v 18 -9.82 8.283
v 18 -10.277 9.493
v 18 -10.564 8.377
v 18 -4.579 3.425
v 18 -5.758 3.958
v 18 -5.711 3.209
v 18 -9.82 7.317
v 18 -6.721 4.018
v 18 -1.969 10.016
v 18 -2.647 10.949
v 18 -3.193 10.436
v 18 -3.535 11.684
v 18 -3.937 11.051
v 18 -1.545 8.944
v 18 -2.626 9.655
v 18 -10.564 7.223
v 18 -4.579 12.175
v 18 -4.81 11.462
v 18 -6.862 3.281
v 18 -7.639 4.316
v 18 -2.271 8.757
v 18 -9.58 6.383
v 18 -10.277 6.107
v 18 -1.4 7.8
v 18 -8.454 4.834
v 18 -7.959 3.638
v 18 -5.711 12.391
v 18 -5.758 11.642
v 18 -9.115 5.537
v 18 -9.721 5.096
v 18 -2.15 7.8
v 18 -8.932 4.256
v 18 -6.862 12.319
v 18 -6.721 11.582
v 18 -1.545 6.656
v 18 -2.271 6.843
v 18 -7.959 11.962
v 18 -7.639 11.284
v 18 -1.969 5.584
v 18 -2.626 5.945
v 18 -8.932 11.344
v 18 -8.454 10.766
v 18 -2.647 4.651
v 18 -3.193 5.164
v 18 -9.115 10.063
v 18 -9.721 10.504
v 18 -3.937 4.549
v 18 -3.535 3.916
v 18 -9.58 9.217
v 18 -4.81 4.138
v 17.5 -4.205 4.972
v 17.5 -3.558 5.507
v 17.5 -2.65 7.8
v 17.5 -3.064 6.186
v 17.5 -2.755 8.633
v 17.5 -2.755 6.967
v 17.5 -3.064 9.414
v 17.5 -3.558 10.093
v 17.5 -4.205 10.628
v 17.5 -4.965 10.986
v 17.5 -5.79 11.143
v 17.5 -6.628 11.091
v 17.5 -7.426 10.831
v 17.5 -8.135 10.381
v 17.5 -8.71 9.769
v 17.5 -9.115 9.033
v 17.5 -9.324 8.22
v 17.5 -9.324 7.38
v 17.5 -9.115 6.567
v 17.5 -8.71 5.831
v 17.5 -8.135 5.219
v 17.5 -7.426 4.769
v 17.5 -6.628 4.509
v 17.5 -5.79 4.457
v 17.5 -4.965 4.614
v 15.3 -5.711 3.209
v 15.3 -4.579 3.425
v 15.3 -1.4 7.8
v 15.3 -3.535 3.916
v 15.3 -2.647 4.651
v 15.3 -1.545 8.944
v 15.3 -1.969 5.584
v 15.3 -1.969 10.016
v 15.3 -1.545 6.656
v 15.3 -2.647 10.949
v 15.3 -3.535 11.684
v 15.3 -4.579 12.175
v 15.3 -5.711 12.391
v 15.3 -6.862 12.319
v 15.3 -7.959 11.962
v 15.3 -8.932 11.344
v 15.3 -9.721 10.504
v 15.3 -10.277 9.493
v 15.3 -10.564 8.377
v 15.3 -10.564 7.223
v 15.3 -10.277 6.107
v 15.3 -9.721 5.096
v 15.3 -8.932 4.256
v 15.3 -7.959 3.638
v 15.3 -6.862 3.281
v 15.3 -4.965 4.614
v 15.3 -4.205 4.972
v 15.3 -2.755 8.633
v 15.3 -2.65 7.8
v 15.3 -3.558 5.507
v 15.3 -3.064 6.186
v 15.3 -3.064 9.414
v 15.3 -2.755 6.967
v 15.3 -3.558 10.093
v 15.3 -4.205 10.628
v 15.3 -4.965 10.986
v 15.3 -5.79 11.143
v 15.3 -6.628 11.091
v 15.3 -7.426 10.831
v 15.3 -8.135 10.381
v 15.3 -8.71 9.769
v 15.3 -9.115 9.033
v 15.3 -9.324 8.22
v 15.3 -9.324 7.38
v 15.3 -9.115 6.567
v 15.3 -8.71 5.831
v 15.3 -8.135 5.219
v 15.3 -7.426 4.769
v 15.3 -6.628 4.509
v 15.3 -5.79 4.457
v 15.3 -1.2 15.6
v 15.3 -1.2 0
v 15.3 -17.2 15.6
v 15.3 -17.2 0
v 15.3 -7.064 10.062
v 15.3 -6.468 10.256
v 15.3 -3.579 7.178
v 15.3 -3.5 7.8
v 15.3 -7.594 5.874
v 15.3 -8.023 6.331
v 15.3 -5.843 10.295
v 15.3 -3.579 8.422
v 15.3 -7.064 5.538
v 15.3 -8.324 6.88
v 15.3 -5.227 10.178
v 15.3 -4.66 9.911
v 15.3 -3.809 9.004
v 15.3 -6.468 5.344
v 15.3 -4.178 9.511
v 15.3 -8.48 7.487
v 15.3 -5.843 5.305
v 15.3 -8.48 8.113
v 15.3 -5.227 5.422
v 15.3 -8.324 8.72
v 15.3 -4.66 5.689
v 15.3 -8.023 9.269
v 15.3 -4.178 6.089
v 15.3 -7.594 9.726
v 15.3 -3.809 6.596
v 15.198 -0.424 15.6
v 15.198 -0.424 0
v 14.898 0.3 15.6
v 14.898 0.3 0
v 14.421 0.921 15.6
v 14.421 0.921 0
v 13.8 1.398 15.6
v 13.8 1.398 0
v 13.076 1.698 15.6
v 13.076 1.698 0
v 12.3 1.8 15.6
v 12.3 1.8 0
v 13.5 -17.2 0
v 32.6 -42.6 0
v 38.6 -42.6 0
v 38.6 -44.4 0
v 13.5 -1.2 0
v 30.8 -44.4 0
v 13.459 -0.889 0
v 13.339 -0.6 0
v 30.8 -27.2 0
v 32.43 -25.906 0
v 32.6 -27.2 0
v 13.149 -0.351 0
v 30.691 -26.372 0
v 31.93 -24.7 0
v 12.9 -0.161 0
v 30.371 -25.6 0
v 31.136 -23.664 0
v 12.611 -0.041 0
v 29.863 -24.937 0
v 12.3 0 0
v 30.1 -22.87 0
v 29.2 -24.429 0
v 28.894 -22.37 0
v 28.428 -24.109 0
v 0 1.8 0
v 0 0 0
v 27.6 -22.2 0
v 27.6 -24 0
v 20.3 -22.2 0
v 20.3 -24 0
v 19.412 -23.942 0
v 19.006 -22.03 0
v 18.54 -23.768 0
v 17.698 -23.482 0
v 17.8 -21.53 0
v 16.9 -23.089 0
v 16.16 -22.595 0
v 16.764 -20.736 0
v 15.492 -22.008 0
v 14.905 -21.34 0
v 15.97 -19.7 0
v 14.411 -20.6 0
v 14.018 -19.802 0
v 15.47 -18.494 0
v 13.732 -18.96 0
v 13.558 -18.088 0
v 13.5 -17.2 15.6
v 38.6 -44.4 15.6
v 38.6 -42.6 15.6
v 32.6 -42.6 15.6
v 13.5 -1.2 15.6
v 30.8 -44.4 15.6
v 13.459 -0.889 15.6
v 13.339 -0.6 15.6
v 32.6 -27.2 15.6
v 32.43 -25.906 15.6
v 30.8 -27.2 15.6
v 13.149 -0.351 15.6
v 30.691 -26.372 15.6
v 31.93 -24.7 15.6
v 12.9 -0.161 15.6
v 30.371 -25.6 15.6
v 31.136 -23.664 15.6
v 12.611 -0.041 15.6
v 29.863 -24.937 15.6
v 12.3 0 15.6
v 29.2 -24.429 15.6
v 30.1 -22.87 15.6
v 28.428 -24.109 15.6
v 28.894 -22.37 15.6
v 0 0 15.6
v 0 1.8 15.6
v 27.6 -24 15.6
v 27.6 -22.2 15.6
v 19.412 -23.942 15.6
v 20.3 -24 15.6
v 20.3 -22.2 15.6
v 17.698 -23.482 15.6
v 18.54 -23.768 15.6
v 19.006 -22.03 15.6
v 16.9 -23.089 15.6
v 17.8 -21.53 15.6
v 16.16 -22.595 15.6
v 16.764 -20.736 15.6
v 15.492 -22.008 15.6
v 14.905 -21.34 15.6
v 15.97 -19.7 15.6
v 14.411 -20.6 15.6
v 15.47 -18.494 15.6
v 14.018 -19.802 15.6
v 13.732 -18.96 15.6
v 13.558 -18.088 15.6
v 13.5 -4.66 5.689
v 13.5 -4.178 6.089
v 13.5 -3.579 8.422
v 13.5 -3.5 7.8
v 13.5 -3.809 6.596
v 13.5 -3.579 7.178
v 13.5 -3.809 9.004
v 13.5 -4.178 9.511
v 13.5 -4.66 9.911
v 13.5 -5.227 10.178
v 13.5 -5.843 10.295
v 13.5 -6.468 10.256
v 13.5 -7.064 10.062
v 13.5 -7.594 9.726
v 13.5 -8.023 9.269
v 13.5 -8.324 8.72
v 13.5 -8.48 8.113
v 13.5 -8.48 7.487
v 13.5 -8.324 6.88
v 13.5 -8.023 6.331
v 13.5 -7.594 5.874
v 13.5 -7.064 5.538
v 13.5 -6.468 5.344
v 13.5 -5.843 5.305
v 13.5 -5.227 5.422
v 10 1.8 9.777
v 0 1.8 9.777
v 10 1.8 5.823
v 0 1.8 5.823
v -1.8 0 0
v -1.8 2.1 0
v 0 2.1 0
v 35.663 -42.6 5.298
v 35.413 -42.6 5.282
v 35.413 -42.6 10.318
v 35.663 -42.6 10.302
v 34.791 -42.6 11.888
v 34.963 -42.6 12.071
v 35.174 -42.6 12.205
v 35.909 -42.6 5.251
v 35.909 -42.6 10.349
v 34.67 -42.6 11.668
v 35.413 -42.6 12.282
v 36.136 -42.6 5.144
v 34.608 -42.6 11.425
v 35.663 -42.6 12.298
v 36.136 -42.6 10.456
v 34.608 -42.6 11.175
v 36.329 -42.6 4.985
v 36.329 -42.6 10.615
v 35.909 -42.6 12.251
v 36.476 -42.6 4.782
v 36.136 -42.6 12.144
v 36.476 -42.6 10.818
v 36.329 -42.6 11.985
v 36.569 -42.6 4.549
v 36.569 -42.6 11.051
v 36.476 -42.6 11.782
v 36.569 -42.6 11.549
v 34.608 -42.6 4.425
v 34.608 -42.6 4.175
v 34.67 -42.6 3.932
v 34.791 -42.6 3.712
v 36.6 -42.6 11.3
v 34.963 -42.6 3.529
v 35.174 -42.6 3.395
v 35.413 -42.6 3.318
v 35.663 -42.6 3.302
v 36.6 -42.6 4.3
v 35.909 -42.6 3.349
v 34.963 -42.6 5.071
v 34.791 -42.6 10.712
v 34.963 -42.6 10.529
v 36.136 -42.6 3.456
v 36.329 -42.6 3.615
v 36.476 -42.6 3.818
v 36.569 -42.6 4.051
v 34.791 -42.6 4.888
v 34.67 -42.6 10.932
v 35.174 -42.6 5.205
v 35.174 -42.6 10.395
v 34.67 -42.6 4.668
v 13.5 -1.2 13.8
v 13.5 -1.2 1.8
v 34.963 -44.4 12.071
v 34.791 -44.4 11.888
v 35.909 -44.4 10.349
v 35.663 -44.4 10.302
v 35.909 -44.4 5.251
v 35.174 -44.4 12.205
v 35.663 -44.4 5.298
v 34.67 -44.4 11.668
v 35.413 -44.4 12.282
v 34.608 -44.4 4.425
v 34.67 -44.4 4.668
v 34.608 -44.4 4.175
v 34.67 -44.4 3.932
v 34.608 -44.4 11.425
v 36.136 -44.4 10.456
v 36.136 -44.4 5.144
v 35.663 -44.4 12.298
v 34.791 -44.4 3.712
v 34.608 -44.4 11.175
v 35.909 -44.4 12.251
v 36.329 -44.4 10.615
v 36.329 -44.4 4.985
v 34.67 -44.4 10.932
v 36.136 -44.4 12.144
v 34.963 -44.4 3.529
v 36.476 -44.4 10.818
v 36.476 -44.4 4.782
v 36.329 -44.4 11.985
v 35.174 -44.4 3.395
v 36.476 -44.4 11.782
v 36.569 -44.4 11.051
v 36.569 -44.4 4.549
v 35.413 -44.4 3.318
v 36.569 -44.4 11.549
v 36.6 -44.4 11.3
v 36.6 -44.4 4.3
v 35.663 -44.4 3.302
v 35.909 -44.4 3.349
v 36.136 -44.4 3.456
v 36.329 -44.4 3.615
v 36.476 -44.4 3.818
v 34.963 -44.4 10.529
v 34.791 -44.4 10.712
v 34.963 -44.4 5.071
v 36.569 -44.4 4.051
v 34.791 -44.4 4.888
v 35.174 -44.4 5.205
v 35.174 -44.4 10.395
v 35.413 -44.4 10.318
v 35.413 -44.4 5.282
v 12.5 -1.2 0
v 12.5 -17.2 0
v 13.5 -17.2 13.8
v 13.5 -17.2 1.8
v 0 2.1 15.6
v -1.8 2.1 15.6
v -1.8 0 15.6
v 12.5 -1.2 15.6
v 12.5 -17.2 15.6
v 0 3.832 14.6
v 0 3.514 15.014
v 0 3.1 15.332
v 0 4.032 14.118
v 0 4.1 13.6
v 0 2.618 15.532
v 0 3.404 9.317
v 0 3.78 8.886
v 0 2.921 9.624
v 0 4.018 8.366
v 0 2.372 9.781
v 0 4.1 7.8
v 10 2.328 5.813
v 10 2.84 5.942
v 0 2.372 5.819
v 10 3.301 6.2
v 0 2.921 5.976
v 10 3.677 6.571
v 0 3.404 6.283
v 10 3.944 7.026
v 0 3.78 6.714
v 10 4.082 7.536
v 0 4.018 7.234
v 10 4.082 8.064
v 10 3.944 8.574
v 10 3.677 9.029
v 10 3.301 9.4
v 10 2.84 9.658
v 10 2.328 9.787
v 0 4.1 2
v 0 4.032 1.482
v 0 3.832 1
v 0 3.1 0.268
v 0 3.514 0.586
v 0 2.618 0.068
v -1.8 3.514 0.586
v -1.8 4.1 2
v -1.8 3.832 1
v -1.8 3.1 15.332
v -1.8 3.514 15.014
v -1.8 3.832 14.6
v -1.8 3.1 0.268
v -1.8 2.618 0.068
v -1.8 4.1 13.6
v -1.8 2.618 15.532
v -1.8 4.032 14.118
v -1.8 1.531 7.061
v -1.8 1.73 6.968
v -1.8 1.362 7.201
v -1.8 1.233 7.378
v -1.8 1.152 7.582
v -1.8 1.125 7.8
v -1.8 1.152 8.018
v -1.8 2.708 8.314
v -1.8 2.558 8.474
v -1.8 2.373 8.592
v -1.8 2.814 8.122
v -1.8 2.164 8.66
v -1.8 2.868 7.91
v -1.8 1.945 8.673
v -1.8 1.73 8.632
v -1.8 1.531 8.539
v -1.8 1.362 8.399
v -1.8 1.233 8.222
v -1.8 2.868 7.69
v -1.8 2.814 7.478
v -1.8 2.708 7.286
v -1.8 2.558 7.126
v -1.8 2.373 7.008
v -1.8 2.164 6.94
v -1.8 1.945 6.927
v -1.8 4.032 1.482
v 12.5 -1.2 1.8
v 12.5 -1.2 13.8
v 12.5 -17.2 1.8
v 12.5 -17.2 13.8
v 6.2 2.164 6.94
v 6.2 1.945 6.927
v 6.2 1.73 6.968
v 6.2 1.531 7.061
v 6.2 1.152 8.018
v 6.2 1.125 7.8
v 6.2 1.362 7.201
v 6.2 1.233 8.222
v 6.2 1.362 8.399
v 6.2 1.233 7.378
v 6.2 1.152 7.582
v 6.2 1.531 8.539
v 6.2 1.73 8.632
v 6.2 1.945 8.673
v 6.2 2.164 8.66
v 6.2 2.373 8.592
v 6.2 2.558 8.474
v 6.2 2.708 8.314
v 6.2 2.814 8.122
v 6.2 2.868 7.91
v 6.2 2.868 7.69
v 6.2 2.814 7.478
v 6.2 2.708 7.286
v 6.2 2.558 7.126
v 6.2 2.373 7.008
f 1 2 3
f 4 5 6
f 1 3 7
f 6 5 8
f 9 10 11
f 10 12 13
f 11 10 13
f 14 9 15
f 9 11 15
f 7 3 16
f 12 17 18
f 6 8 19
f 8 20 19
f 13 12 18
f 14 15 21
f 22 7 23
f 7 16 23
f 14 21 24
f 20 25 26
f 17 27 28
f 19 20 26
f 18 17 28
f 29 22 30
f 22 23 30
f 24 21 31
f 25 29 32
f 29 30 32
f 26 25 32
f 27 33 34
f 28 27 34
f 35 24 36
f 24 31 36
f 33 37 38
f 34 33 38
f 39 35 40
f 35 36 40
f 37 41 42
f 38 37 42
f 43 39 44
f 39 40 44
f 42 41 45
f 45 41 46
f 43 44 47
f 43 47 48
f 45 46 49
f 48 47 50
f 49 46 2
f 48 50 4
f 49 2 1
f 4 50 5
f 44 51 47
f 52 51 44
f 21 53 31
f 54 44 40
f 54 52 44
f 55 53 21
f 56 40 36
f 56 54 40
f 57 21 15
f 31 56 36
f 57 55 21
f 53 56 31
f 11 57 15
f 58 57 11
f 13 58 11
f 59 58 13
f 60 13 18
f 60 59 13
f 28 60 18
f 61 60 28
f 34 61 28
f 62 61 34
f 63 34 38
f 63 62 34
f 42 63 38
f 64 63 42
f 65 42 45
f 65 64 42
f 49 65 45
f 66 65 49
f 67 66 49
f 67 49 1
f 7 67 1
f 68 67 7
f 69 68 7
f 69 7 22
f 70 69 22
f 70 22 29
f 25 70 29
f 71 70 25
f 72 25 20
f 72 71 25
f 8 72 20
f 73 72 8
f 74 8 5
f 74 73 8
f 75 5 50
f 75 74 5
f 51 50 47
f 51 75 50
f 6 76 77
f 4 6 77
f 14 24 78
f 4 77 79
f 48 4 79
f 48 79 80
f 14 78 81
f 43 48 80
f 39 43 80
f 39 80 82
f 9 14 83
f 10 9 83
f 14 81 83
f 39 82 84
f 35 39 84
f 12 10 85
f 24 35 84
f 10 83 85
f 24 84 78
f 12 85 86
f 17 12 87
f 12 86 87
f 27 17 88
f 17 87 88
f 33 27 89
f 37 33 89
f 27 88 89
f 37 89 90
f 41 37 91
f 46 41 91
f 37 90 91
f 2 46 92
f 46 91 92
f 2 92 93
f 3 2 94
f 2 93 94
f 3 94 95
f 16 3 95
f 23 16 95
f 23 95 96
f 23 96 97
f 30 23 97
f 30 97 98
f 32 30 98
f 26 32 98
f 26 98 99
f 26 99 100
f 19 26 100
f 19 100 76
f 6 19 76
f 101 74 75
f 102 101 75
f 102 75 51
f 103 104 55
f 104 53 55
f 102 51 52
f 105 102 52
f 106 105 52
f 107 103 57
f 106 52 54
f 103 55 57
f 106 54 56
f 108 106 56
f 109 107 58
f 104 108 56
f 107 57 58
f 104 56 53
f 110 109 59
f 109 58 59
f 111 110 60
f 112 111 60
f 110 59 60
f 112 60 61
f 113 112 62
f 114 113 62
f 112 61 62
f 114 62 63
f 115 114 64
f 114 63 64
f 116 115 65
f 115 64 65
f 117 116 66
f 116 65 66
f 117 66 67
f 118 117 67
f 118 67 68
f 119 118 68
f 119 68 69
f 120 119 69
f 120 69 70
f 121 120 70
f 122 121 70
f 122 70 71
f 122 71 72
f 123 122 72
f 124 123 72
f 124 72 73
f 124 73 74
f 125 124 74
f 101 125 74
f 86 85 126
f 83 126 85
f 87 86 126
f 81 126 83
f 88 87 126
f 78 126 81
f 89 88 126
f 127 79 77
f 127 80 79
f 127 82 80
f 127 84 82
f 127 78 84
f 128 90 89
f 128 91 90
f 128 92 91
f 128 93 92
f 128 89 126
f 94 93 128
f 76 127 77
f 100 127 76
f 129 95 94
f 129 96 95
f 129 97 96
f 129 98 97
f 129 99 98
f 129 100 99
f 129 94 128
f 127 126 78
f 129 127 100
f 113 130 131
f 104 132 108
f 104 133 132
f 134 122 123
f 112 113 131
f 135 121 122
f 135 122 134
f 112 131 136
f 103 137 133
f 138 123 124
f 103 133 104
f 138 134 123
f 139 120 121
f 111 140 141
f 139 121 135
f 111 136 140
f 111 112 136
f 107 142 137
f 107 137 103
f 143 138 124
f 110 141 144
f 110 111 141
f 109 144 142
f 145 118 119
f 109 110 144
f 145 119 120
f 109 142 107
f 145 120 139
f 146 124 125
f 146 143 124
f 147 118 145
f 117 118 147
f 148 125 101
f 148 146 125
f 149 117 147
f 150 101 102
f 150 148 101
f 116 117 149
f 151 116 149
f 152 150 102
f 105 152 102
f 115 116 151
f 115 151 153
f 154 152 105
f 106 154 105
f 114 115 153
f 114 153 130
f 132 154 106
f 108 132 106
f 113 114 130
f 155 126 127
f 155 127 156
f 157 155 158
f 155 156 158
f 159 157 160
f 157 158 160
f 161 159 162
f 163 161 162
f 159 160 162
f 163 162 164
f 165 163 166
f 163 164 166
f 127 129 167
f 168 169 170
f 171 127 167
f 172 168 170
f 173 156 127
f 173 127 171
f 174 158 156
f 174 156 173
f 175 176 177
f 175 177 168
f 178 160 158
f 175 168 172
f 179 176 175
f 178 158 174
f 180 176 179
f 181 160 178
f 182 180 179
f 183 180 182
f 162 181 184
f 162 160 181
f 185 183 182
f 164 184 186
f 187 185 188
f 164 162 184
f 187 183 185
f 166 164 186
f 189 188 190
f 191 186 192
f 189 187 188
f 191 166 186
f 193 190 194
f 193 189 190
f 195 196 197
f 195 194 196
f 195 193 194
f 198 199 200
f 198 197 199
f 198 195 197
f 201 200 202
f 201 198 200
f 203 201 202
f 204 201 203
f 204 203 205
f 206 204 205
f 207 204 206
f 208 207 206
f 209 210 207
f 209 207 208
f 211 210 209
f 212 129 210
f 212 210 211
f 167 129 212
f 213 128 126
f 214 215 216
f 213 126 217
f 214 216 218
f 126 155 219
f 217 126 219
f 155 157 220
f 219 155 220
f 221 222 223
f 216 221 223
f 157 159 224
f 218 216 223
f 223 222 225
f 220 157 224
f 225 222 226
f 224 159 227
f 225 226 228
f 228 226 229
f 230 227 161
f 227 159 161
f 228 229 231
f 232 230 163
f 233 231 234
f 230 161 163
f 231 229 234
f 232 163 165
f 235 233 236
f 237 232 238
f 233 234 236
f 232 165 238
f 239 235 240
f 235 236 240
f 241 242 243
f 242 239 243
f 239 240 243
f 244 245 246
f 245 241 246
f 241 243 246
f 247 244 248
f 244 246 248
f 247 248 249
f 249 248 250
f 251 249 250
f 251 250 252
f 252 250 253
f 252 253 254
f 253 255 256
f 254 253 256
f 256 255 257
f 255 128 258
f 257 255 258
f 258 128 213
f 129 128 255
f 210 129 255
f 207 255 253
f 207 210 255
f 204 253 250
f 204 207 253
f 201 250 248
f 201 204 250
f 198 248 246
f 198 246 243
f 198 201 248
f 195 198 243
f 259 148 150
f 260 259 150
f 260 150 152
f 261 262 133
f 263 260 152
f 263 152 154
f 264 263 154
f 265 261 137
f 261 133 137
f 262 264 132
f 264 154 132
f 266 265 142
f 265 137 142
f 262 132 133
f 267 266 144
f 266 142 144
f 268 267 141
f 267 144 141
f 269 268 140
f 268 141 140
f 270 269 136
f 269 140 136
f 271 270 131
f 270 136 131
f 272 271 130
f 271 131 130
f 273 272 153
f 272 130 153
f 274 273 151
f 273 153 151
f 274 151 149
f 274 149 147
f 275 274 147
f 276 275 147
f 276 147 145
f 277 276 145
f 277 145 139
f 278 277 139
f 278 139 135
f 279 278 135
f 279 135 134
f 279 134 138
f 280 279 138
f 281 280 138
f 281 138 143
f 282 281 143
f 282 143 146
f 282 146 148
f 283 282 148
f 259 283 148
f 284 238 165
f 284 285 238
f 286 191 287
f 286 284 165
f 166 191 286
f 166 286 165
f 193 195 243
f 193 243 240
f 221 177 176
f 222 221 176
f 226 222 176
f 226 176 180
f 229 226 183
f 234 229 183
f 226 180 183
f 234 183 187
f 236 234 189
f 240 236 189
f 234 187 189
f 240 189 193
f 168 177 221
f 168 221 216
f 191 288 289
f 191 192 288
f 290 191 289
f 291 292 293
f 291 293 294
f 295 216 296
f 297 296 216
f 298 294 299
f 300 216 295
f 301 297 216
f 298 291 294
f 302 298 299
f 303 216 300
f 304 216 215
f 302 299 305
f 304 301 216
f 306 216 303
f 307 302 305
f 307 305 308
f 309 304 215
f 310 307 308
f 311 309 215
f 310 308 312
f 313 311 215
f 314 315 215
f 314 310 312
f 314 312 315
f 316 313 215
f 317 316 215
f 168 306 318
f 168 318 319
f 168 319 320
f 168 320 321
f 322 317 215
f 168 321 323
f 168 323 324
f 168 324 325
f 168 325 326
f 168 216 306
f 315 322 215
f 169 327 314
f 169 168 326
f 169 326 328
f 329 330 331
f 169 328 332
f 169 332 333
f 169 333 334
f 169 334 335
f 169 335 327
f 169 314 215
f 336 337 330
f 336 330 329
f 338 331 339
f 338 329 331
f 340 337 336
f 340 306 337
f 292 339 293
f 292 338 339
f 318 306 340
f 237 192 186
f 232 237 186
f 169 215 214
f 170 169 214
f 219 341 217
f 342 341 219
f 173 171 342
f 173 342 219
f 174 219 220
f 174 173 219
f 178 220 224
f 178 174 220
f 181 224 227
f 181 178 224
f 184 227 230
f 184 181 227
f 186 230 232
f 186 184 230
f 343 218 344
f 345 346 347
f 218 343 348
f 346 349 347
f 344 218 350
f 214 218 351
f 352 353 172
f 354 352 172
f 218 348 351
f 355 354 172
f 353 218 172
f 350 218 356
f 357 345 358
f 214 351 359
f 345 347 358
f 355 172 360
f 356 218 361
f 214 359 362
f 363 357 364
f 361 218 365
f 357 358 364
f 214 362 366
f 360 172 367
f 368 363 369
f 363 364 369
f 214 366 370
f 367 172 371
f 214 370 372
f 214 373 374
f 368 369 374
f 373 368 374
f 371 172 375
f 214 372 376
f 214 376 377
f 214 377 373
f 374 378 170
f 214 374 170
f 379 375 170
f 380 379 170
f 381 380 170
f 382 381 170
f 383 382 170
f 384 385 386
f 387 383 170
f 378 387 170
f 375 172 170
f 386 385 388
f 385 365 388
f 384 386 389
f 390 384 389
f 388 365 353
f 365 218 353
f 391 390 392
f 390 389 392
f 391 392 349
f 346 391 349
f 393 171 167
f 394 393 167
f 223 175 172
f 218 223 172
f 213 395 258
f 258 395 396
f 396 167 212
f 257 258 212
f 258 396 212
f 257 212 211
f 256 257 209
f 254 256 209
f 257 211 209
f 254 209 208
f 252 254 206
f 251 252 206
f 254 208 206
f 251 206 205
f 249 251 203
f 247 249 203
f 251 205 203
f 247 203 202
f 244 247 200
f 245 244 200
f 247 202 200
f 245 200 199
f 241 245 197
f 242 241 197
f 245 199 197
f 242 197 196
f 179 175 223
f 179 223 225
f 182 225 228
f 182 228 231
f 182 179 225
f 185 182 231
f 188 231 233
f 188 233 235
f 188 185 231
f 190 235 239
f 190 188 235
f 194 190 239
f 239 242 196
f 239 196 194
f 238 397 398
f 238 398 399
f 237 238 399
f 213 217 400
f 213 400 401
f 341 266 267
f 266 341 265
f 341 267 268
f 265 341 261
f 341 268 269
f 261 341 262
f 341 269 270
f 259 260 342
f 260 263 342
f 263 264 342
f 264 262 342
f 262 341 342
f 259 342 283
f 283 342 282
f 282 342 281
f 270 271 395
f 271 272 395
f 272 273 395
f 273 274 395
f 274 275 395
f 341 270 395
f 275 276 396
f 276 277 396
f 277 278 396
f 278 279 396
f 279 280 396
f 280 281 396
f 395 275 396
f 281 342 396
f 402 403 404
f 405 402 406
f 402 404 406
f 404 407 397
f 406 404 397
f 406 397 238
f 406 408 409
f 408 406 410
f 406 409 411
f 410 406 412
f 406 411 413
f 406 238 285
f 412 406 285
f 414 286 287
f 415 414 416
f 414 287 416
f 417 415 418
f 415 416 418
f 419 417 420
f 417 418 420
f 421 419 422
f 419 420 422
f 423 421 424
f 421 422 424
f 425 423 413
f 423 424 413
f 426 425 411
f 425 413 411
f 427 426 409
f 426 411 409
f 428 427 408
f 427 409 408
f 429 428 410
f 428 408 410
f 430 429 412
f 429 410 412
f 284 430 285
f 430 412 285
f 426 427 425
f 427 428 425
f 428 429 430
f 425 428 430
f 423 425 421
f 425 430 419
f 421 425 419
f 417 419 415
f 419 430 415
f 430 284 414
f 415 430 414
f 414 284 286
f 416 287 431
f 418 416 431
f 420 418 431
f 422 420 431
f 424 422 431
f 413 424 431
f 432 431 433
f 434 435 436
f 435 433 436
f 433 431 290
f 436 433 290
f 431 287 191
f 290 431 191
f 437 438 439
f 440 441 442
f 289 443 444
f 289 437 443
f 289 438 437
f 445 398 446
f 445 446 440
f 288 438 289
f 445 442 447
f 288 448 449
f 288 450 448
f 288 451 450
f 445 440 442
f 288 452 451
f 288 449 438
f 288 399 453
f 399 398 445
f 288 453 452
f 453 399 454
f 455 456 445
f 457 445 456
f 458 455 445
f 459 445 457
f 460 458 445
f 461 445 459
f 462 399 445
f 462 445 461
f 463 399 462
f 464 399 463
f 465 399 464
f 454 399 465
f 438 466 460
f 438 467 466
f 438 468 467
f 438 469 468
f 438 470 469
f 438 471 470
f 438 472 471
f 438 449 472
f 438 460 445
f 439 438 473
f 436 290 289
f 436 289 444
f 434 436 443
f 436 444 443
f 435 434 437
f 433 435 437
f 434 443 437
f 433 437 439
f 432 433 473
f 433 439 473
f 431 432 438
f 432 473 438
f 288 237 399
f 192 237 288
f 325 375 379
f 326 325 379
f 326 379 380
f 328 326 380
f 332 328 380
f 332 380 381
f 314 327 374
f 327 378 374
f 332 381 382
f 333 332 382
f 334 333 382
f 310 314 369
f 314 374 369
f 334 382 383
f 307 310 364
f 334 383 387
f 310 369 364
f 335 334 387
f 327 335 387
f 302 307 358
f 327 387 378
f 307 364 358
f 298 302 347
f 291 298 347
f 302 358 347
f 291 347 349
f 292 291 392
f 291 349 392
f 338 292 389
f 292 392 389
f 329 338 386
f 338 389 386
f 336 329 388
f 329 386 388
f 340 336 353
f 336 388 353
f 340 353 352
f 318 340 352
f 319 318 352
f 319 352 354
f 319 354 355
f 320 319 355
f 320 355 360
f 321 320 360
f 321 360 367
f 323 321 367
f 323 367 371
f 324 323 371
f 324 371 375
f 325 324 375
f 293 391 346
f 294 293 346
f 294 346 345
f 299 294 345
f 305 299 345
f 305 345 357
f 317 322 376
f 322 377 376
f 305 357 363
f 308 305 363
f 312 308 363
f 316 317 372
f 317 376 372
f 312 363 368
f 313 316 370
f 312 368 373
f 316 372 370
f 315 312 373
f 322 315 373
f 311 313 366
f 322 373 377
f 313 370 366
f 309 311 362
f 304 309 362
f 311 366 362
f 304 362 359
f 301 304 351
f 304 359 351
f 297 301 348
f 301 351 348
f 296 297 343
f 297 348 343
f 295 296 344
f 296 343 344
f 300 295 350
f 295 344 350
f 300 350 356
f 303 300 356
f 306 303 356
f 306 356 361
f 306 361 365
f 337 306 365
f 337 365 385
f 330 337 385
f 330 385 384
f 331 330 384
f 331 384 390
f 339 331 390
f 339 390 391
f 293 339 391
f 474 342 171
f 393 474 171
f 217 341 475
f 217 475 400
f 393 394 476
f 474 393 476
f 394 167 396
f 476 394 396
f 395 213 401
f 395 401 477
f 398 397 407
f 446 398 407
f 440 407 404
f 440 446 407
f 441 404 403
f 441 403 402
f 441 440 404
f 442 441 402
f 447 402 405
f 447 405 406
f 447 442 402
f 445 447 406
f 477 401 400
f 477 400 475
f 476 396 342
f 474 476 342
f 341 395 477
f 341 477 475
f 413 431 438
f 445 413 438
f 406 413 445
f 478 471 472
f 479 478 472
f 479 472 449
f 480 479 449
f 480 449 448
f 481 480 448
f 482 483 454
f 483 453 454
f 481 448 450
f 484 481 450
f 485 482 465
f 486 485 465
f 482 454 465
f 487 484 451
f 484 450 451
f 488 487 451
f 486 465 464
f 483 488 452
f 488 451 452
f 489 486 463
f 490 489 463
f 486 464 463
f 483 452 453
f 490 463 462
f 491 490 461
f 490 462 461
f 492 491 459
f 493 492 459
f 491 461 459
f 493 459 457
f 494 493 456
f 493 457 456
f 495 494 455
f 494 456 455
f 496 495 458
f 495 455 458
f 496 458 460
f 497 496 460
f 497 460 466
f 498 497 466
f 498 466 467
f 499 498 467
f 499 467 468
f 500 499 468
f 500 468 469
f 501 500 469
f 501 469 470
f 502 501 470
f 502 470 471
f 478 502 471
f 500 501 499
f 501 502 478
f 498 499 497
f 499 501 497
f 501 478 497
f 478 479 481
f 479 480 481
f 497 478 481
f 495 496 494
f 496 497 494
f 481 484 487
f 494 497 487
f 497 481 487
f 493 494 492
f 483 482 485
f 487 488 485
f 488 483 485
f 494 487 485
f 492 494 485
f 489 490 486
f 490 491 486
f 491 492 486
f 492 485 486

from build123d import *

# Parameters (mm, degrees)
PAD_DEPTH       = 15.6
SKETCH001_R     = 4.6
PAD001_DEPTH    = 2.7
SKETCH002_R     = 3.35
POCKET_DEPTH    = 2.7
SKETCH003_R     = 2.5
POCKET001_DEPTH = 15.301
SKETCH004_W     = 4.1
SKETCH004_H     = 15.6
PAD002_DEPTH    = 1.8
PAD003_DEPTH    = 10
SKETCH006_R     = 0.875
POCKET002_DEPTH = 8
SKETCH007_R     = 1
POCKET003_DEPTH = 48.501
FILLET_R        = 2
CHAMFER_SIZE    = 0.5
SKETCH008_W     = 16
SKETCH008_H     = 1.8
PAD004_DEPTH    = 1


with BuildPart() as part:
    # Sketch → Pad (new body)
    with BuildSketch(Plane.XY):
        with BuildLine():
            Line((0, 1.8), (0, 0))
            Line((0, 0), (12.300012, 0))
            ThreePointArc((13.5, -1.200002), (13.148533, -0.351477), (12.300012, 0))
            Line((13.5, -1.200002), (13.5, -17.200002))
            ThreePointArc((13.5, -17.200002), (15.491679, -22.008332), (20.300013, -24))
            Line((20.300013, -24), (27.6, -24))
            ThreePointArc((30.8, -27.2), (29.862742, -24.937258), (27.6, -24))
            Line((30.8, -27.2), (30.8, -44.4))
            Line((30.8, -44.4), (38.6, -44.4))
            Line((38.6, -42.6), (38.6, -44.4))
            Line((32.6, -42.6), (38.6, -42.6))
            Line((32.6, -27.2), (32.6, -42.6))
            ThreePointArc((32.6, -27.2), (31.135534, -23.664466), (27.6, -22.2))
            Line((20.300013, -22.2), (27.6, -22.2))
            ThreePointArc((15.3, -17.200002), (16.764472, -20.735539), (20.300013, -22.2))
            Line((15.3, -1.200002), (15.3, -17.200002))
            ThreePointArc((15.3, -1.200002), (14.421326, 0.921315), (12.300012, 1.8))
            Line((0, 1.8), (12.300012, 1.8))
        make_face()
    extrude(amount=PAD_DEPTH)

    # Sketch001 → Pad001 (new body)
    with BuildSketch(Plane.YZ.offset(15.3)):
        with Locations((-6, 7.8)):
            Circle(SKETCH001_R)
    extrude(amount=PAD001_DEPTH)

    # Sketch002 → Pocket (cut)
    with BuildSketch(Plane.YZ.offset(18)):
        with Locations((-6, 7.8)):
            Circle(SKETCH002_R)
    extrude(amount=-POCKET_DEPTH, mode=Mode.SUBTRACT)

    # Sketch003 → Pocket001 (cut, through all)
    with BuildSketch(Plane.YZ.offset(15.3)):
        with Locations((-6, 7.8)):
            Circle(SKETCH003_R)
    extrude(amount=-POCKET001_DEPTH, mode=Mode.SUBTRACT)

    # Sketch004 → Pad002 (new body)
    with BuildSketch(Plane(origin=(0, 0, 0), x_dir=(0, -1, 0), z_dir=(-1, 0, 0))):
        with Locations((-2.05, 7.8)):
            Rectangle(SKETCH004_W, SKETCH004_H)
    extrude(amount=PAD002_DEPTH)

    # Sketch005 → Pad003 (new body)
    with BuildSketch(Plane.YZ):
        with BuildLine():
            ThreePointArc((1.8, 5.822628), (4.1, 7.8), (1.8, 9.777372))
            Line((1.8, 9.777372), (1.8, 5.822628))
        make_face()
    extrude(amount=PAD003_DEPTH)

    # Sketch006 → Pocket002 (cut)
    with BuildSketch(Plane(origin=(-1.8, 0, 0), x_dir=(0, -1, 0), z_dir=(-1, 0, 0))):
        with Locations((-2, 7.8)):
            Circle(SKETCH006_R)
    extrude(amount=-POCKET002_DEPTH, mode=Mode.SUBTRACT)

    # Sketch007 → Pocket003 (cut, through all)
    with BuildSketch(Plane.XZ.offset(44.4)):
        with Locations((35.6, 11.3)):
            Circle(SKETCH007_R)
        with Locations((35.6, 4.3)):
            Circle(SKETCH007_R)
    extrude(amount=-POCKET003_DEPTH, mode=Mode.SUBTRACT)

    # Fillet
    fillet_edges = [part.edges().sort_by_distance(p)[0] for p in [
        (-0.9, 4.1, 0),
        (-0.9, 4.1, 15.6),
    ]]
    fillet(fillet_edges, radius=FILLET_R)

    # Chamfer
    chamfer_edges = [part.edges().sort_by_distance(p)[0] for p in [
        (18, -9.35, 7.8),
    ]]
    chamfer(chamfer_edges, length=CHAMFER_SIZE)

    # Sketch008 → Pad004 (new body)
    with BuildSketch(Plane(origin=(13.5, 0, 0), x_dir=(0, -1, 0), z_dir=(-1, 0, 0))):
        with Locations((9.200002, 14.7)):
            Rectangle(SKETCH008_W, SKETCH008_H)
        with Locations((9.200002, 0.9)):
            Rectangle(SKETCH008_W, SKETCH008_H)
    extrude(amount=PAD004_DEPTH)


solid = part.part
